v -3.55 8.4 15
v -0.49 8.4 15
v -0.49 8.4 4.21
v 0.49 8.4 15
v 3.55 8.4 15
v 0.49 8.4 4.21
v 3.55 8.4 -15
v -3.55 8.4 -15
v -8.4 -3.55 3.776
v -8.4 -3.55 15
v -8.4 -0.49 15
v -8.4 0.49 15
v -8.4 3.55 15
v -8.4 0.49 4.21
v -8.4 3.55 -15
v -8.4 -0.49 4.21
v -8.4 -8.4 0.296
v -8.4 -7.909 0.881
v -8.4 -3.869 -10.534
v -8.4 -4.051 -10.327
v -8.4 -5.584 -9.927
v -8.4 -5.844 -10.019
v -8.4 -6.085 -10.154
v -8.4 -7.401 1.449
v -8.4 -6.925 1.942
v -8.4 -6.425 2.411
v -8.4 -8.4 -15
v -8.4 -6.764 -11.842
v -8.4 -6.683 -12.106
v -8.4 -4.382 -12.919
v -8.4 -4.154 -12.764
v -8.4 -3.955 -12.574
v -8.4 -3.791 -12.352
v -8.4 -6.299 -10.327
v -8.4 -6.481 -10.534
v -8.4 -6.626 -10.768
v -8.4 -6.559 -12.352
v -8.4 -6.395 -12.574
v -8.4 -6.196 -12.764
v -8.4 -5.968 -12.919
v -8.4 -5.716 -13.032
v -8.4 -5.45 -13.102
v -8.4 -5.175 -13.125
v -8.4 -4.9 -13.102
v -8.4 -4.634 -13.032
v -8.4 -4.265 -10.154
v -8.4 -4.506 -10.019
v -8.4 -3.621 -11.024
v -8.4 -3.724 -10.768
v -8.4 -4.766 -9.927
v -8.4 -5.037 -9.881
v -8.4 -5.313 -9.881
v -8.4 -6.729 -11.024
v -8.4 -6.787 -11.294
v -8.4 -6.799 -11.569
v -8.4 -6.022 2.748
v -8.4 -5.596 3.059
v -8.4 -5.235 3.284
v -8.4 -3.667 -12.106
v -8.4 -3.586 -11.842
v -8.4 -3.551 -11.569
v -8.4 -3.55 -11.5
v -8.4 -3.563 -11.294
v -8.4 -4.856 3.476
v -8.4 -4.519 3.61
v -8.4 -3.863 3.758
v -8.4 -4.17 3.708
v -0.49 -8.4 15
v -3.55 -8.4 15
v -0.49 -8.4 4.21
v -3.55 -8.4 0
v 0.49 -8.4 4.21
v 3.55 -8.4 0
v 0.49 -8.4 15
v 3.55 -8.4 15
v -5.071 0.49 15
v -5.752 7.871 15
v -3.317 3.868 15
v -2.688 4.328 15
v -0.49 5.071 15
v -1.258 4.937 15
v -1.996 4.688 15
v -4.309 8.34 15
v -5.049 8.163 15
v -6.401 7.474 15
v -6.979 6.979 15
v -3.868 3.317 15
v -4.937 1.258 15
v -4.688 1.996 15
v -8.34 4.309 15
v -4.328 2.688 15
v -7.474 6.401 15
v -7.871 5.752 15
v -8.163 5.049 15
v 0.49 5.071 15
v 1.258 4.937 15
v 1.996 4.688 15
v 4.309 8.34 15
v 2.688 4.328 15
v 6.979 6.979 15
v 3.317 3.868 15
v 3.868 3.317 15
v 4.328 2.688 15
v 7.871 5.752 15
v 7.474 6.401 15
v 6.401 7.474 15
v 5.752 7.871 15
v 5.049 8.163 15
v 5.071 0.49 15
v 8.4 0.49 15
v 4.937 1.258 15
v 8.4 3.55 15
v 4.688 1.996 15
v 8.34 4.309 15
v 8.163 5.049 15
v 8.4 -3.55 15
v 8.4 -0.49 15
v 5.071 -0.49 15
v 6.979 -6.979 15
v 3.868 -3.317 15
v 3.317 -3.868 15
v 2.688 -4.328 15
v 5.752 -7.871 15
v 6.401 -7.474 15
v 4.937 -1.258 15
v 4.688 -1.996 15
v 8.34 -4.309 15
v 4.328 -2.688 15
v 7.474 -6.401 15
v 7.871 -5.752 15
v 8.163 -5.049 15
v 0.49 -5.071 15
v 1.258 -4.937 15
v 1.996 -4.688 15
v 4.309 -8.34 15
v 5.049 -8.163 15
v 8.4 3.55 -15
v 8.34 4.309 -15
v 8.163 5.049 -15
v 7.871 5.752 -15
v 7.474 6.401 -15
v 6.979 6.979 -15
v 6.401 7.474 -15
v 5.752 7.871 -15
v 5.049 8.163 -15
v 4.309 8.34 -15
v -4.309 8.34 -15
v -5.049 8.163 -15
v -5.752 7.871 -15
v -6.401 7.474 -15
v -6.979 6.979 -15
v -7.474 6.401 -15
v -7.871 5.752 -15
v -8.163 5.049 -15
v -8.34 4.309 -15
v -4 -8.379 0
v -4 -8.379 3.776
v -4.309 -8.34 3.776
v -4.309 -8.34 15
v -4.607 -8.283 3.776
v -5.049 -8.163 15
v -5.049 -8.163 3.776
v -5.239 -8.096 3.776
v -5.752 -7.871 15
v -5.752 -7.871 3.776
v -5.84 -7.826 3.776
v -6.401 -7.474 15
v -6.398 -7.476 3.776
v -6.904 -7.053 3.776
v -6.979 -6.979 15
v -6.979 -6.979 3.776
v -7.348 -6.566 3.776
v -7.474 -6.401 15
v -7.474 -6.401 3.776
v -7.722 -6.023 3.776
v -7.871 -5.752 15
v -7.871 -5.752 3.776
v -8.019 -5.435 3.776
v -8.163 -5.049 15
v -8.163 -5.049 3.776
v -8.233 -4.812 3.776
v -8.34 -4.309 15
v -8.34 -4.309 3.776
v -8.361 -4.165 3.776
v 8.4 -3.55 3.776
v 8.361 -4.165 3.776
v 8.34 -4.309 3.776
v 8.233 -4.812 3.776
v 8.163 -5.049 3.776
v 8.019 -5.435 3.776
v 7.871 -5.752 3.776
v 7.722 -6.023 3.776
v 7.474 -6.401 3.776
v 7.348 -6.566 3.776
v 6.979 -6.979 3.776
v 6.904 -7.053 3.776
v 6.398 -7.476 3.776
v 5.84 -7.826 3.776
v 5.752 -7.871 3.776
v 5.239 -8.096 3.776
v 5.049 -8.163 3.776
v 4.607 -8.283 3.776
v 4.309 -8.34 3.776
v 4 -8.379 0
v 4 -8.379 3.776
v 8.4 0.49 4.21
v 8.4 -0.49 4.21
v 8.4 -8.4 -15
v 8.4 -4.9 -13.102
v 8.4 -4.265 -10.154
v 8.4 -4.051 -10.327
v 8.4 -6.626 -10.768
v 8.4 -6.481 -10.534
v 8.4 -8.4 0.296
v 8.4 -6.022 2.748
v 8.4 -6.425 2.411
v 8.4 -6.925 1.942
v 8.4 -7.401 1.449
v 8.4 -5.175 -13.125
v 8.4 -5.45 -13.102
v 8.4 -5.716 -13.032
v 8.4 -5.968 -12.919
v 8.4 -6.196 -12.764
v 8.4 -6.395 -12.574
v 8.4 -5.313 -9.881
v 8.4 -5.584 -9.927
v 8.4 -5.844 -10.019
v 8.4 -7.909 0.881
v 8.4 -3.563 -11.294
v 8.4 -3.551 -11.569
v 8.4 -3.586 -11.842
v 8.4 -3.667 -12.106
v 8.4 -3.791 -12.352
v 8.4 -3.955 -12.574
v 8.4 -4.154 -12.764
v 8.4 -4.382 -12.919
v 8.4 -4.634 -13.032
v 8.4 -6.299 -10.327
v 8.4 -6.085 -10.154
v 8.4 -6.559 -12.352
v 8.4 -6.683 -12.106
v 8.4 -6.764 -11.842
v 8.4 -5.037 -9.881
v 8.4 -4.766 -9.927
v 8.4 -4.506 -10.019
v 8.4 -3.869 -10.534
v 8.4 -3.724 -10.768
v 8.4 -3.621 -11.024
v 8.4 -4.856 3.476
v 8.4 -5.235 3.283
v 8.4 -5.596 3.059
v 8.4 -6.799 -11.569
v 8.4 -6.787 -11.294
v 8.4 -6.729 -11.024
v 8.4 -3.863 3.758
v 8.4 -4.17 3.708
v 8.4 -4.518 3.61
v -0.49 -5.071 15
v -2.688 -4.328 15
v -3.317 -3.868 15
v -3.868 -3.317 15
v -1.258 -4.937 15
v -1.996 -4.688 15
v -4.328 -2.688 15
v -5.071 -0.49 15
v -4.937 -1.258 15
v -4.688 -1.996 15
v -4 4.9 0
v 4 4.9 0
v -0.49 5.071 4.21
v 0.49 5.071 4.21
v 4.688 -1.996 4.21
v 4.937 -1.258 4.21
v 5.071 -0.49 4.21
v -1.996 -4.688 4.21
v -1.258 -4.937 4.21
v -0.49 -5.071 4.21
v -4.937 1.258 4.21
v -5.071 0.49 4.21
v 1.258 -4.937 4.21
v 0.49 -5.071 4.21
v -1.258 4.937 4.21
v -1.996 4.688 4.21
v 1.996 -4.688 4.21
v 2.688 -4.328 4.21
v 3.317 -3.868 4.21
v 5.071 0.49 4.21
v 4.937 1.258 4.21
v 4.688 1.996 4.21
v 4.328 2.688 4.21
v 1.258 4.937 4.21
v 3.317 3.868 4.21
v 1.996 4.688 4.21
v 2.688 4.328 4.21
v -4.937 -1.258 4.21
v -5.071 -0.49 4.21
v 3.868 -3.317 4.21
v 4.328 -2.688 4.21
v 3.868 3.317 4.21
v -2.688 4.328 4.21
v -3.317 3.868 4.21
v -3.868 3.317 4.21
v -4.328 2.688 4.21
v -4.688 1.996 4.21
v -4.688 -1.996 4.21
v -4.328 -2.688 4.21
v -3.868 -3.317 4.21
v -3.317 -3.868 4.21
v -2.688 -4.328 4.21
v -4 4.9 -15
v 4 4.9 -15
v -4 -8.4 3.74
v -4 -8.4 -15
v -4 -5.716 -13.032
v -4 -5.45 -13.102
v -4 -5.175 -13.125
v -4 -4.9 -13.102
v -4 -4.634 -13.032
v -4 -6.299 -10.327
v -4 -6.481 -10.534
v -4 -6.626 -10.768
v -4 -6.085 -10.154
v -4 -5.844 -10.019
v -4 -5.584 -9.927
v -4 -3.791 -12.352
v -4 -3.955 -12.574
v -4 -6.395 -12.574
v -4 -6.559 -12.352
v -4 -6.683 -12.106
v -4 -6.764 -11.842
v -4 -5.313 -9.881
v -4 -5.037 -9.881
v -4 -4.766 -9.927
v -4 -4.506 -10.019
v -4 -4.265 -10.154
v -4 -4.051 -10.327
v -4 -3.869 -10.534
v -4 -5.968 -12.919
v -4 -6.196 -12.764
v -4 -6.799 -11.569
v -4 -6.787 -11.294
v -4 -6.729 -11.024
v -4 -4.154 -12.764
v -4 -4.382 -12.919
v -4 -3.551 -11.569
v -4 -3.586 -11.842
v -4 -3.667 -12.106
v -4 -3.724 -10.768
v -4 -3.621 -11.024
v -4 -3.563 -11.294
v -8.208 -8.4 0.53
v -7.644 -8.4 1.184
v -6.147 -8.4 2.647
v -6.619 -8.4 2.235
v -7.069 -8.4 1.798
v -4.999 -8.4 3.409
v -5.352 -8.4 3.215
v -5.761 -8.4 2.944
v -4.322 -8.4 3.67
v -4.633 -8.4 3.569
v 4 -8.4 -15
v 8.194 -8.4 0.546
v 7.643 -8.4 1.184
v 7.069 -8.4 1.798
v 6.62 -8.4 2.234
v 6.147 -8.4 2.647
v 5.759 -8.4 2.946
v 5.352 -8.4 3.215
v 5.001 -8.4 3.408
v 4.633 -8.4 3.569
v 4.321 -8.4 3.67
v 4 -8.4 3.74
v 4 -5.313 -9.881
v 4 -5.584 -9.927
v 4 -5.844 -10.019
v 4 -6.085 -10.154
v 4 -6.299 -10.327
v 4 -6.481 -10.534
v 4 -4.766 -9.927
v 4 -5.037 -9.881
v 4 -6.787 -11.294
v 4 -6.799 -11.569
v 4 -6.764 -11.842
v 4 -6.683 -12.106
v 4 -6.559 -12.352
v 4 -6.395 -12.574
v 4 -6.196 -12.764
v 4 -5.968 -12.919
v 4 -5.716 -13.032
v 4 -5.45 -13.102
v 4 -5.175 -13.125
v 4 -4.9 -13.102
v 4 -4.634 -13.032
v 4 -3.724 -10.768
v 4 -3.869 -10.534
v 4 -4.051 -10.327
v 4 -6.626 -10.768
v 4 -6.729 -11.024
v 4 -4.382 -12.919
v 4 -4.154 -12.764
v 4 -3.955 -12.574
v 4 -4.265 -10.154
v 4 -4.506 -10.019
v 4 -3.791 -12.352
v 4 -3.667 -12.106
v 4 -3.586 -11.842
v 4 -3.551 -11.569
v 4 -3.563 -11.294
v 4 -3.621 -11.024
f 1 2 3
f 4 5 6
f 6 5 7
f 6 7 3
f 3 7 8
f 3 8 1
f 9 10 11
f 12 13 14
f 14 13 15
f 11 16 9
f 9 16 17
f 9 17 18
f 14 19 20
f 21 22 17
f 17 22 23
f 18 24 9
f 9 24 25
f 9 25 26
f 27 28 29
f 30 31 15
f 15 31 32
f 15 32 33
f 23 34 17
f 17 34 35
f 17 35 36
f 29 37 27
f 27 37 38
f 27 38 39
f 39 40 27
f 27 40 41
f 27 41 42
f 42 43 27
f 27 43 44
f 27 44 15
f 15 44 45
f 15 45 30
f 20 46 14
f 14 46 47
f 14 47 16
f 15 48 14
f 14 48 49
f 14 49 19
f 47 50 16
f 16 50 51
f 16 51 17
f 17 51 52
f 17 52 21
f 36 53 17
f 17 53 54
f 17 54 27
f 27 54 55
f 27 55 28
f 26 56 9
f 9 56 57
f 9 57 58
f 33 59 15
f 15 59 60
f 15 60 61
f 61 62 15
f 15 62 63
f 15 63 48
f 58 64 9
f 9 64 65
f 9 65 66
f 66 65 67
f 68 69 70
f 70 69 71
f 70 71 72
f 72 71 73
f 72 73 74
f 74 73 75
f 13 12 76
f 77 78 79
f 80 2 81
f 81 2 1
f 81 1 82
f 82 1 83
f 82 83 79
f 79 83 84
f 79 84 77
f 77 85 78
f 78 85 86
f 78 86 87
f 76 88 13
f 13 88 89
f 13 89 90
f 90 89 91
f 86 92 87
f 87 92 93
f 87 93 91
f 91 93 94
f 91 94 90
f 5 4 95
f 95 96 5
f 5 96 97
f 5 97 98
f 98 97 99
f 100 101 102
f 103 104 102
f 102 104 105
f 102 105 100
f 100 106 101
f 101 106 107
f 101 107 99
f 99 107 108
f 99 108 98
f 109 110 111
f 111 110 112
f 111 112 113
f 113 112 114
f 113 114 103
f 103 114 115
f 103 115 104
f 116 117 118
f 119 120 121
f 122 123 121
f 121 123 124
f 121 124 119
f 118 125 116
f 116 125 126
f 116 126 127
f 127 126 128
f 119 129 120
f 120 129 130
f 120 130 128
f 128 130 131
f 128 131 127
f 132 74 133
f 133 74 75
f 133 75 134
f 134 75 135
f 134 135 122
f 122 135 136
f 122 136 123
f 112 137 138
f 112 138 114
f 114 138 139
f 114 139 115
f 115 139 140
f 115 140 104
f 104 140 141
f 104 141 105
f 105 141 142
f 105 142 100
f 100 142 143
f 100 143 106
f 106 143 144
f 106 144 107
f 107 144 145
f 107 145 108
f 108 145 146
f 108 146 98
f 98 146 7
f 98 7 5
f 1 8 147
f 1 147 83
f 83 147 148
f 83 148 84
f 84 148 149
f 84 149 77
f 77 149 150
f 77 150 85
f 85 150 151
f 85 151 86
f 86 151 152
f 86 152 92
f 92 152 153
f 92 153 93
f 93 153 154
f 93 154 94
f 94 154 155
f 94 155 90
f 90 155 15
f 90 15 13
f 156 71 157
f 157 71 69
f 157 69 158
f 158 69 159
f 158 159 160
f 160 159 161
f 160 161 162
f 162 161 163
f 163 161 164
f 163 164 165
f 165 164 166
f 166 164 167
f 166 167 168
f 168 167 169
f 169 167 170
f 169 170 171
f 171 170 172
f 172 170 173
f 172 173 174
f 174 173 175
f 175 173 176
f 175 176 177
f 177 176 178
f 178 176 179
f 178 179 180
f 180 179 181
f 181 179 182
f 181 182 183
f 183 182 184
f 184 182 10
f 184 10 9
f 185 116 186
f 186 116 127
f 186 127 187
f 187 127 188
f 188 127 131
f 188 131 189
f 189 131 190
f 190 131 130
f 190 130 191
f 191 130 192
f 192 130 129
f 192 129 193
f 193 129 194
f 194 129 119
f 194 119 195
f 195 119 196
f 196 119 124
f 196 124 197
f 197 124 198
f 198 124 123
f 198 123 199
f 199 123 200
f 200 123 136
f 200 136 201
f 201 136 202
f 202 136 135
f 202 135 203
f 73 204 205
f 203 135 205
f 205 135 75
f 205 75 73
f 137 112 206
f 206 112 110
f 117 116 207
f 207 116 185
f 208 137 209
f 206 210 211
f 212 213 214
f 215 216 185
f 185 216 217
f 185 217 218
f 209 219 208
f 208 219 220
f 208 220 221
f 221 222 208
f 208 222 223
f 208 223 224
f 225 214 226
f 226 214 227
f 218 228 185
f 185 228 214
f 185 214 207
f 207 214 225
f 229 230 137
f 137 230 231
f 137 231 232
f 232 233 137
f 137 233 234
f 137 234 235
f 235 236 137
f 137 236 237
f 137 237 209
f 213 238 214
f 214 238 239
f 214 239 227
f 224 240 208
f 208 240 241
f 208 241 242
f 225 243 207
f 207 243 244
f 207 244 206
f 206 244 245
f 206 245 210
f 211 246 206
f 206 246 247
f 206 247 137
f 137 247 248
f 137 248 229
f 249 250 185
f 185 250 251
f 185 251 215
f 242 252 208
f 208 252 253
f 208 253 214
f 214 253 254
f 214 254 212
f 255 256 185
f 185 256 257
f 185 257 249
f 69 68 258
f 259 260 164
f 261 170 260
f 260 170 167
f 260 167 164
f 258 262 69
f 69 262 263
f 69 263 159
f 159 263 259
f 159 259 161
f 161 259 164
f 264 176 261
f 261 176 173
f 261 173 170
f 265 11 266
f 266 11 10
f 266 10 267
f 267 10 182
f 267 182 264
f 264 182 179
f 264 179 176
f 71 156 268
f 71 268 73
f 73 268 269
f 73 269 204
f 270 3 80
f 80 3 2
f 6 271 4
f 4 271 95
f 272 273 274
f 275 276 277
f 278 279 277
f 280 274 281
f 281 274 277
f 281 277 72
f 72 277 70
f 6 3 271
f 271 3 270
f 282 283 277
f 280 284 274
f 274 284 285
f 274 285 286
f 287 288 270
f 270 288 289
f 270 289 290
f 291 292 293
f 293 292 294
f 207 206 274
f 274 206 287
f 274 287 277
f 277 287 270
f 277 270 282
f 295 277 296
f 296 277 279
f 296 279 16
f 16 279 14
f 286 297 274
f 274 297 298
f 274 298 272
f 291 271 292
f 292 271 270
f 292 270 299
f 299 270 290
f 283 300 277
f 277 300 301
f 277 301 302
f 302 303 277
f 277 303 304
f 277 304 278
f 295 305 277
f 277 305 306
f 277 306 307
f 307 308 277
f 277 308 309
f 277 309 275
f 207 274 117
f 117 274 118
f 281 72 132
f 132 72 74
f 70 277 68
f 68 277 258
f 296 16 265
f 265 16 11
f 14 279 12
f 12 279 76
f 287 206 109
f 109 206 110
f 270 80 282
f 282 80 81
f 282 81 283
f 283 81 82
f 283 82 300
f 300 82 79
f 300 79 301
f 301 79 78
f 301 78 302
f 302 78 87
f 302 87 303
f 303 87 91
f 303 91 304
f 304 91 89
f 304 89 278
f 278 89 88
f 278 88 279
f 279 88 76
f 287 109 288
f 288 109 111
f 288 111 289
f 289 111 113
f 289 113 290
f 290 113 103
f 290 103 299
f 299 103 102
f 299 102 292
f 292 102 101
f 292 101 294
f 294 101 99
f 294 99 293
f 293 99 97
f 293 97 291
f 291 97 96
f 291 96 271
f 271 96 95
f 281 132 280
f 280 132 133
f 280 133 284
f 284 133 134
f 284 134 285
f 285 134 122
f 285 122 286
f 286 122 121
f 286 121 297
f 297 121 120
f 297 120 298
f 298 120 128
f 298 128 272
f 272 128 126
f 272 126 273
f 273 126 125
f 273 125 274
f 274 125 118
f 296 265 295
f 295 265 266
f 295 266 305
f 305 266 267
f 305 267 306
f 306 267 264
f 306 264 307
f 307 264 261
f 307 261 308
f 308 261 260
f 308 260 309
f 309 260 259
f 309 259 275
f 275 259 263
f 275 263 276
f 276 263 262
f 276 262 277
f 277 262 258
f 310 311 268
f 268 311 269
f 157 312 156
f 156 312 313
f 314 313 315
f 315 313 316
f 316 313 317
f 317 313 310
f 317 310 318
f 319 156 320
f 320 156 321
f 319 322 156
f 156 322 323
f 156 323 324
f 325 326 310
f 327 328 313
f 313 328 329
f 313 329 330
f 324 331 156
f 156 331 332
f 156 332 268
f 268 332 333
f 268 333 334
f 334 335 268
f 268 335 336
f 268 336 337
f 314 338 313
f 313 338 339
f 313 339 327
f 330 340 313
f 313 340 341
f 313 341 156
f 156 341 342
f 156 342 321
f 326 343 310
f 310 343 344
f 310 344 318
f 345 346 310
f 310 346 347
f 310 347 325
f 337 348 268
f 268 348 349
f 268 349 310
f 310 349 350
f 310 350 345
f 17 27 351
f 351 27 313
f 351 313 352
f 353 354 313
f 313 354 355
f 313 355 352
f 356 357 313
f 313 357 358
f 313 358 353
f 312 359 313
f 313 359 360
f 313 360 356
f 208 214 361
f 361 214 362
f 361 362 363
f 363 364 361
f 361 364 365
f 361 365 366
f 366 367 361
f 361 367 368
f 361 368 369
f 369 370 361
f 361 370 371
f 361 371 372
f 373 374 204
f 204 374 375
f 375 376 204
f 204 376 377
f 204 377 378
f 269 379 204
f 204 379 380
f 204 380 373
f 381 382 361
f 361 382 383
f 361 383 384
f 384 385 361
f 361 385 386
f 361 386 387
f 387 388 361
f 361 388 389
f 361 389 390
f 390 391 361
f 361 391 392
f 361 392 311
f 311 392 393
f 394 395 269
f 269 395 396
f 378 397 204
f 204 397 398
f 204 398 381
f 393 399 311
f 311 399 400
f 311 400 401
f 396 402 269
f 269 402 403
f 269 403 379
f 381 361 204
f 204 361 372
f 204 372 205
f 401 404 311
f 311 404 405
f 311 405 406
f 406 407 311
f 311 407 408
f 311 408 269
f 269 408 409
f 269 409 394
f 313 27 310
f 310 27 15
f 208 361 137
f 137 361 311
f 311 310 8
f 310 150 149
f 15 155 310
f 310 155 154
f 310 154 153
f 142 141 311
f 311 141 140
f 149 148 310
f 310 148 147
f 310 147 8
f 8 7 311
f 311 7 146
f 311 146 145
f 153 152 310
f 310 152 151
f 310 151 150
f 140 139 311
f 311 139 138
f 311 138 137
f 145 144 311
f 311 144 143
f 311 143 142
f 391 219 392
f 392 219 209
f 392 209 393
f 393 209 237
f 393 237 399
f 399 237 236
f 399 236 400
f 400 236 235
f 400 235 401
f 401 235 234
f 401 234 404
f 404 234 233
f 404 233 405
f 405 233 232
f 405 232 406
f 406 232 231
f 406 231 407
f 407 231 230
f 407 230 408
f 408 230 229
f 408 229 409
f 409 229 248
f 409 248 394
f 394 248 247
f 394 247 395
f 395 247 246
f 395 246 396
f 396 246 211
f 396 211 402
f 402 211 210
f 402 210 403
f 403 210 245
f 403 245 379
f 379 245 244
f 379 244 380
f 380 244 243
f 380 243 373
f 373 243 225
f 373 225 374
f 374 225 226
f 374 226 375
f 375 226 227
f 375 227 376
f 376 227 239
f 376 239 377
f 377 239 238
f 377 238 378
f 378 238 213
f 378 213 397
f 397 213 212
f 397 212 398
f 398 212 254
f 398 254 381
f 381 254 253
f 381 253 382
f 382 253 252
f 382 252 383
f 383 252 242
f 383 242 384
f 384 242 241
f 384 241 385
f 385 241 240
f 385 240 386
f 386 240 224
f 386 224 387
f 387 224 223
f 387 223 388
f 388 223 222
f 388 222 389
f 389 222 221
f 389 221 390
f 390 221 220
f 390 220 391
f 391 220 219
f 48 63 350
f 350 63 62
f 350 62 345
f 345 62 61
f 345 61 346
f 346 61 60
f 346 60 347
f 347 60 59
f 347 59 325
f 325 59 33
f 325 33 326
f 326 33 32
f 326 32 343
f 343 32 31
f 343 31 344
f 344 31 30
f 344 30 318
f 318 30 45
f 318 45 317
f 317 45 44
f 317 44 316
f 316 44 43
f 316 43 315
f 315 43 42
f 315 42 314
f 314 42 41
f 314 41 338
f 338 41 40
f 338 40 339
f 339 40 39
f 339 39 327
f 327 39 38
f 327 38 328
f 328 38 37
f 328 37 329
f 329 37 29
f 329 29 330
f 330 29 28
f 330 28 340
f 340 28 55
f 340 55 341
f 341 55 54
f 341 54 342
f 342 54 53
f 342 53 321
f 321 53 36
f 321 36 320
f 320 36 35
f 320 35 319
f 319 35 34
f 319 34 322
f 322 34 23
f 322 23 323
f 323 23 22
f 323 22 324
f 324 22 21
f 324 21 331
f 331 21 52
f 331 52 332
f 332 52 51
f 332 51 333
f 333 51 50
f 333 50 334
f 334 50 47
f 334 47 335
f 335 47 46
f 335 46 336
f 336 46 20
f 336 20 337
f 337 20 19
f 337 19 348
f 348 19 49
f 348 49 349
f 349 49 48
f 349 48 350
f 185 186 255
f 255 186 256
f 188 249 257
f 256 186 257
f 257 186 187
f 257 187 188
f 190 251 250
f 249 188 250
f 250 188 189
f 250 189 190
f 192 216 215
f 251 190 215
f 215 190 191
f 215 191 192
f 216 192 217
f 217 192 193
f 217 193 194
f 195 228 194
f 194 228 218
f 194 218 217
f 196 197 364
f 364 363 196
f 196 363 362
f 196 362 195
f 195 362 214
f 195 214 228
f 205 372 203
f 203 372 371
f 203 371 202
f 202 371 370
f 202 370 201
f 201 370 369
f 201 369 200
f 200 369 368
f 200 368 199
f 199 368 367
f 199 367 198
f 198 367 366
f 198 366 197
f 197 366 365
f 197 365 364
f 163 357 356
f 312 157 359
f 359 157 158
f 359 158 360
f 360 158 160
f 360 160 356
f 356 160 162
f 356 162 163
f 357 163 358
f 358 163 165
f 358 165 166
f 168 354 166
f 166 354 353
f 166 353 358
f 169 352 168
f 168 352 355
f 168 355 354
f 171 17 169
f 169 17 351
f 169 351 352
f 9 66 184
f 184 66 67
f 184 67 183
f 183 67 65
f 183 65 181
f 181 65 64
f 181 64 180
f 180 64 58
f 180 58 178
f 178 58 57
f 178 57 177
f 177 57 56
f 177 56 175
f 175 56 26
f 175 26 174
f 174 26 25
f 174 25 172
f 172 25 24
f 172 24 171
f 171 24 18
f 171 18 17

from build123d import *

# Parameters (mm, degrees)
BOSS_EXTRUDE1_DEPTH = 15
SKETCH2_R           = 5.095
CUT_EXTRUDE1_DEPTH  = 10.79
BOSS_EXTRUDE3_START = 15
BOSS_EXTRUDE3_DEPTH = 15
CUT_EXTRUDE2_REACH  = 26.037
SKETCH7_R           = 1.625
CHAMFER2_SIZE       = 2.18
CHAMFER2_SIZE_2     = 3.775870761


with BuildPart() as part:
    # Sketch1 → Boss-Extrude1 (new body)
    with BuildSketch(Plane.XY):
        with BuildLine():
            Line((-3.55, 8.4), (3.55, 8.4))
            ThreePointArc((3.55, 8.4), (6.979467889, 6.979467889), (8.4, 3.55))
            Line((8.4, 3.55), (8.4, -3.55))
            ThreePointArc((8.4, -3.55), (6.979467889, -6.979467889), (3.55, -8.4))
            Line((3.55, -8.4), (-3.55, -8.4))
            ThreePointArc((-3.55, -8.4), (-6.979467889, -6.979467889), (-8.4, -3.55))
            Line((-8.4, -3.55), (-8.4, 3.55))
            ThreePointArc((-8.4, 3.55), (-6.979467889, 6.979467889), (-3.55, 8.4))
        make_face()
    extrude(amount=BOSS_EXTRUDE1_DEPTH)

    # Sketch2 → Cut-Extrude1 (cut)
    with BuildSketch(Plane.XY.offset(15)):
        Circle(SKETCH2_R)
        with BuildLine():
            Line((0.49, 5.071382947), (0.49, 8.4))
            Line((0.49, 8.4), (-0.49, 8.4))
            Line((-0.49, 8.4), (-0.49, 5.071382947))
            ThreePointArc((-0.49, 5.071382947), (0, 5.095), (0.49, 5.071382947))
        make_face()
        with BuildLine():
            Line((5.071382947, -0.49), (8.4, -0.49))
            Line((8.4, -0.49), (8.4, 0.49))
            Line((8.4, 0.49), (5.071382947, 0.49))
            ThreePointArc((5.071382947, 0.49), (5.095, 0), (5.071382947, -0.49))
        make_face()
        with BuildLine():
            Line((-0.49, -5.071382947), (-0.49, -8.4))
            Line((-0.49, -8.4), (0.49, -8.4))
            Line((0.49, -8.4), (0.49, -5.071382947))
            ThreePointArc((0.49, -5.071382947), (0, -5.095), (-0.49, -5.071382947))
        make_face()
        with BuildLine():
            Line((-5.071382947, 0.49), (-8.4, 0.49))
            Line((-8.4, 0.49), (-8.4, -0.49))
            Line((-8.4, -0.49), (-5.071382947, -0.49))
            ThreePointArc((-5.071382947, -0.49), (-5.095, 0), (-5.071382947, 0.49))
        make_face()
    extrude(amount=-CUT_EXTRUDE1_DEPTH, mode=Mode.SUBTRACT)

    # Sketch4 → Boss-Extrude3 (add)
    with BuildSketch(Plane(origin=(0, 0, 0), x_dir=(-1, 0, 0), z_dir=(0, 0, -1)).offset(BOSS_EXTRUDE3_START)):
        with BuildLine():
            Line((-8.4, 3.55), (-8.4, -8.4))
            Line((-8.4, -8.4), (-4, -8.4))
            Line((-4, -8.4), (-4, 4.9))
            Line((-4, 4.9), (4, 4.9))
            Line((4, 4.9), (4, -8.4))
            Line((4, -8.4), (8.4, -8.4))
            Line((8.4, -8.4), (8.4, 3.55))
            ThreePointArc((8.4, 3.55), (6.979467889, 6.979467889), (3.55, 8.4))
            Line((3.55, 8.4), (-3.55, 8.4))
            ThreePointArc((-3.55, 8.4), (-6.979467889, 6.979467889), (-8.4, 3.55))
        make_face()
    extrude(amount=-BOSS_EXTRUDE3_DEPTH)

    # Cut-Extrude2: up to this face of the body (flat: up to its plane)
    cut_extrude2_end = Plane(part.part.faces().sort_by_distance((-8.4, -1.579649264, -2.351915361))[0])
    # Sketch7 → Cut-Extrude2 (cut, up to the picked face)
    with BuildSketch(Plane(origin=(8.4, 0, 0), x_dir=(0, 0, -1), z_dir=(1, 0, 0)), mode=Mode.PRIVATE) as cut_extrude2_sk1:
        with Locations((11.5, -5.175)):
            Circle(SKETCH7_R)
    cut_extrude2_tool1 = split(extrude(cut_extrude2_sk1.sketch, amount=-CUT_EXTRUDE2_REACH, mode=Mode.PRIVATE), bisect_by=cut_extrude2_end, keep=Keep.BOTH, mode=Mode.PRIVATE)
    add(cut_extrude2_tool1.solids().sort_by(Axis((8.4, -5.175, -11.5), (-1, 0, 0)))[0], mode=Mode.SUBTRACT)

    # Chamfer2
    # the kernel refuses this chamfer: 3.775870761, 2.18 mm, written as the material it adds along each edge
    with BuildSketch(Plane(origin=(-3.55, -3.55, 0), x_dir=(0.9389857690160399, 0.343955993675581, 0), z_dir=(-0.343955993675581, 0.9389857690160399, 0))) as chamfer2_piece_1_section:
        Polygon((4.85 + CHAMFER2_SIZE, 0), (4.85, -CHAMFER2_SIZE_2), (4.85, 0), align=None)
    chamfer2_piece_1 = revolve(axis=Axis((-3.55, -3.55, 0), (0, 0, -1)), revolution_arc=315.559918018, mode=Mode.PRIVATE)
    chamfer2_piece_1 = split(chamfer2_piece_1, bisect_by=Plane(origin=(-4, -7.19796441, 1.47894359), z_dir=(-1, 0, 0)), keep=Keep.TOP, mode=Mode.PRIVATE)
    chamfer2_piece_1 = split(chamfer2_piece_1, bisect_by=Plane(origin=(-7.201843372, -8.4, 1.47894359), z_dir=(0, 1, 0)), keep=Keep.TOP, mode=Mode.PRIVATE)
    chamfer2_piece_1 = split(chamfer2_piece_1, bisect_by=Plane(origin=(-8.4, -7.19796441, 1.47894359), z_dir=(1, 0, 0)), keep=Keep.TOP, mode=Mode.PRIVATE)
    add(chamfer2_piece_1)
    with BuildSketch(Plane(origin=(3.55, -3.55, 0), x_dir=(-0.42959466391895607, 0.9030218295990186, 0), z_dir=(-0.9030218295990186, -0.42959466391895607, 0))) as chamfer2_piece_2_section:
        Polygon((4.85, -CHAMFER2_SIZE_2), (4.85 + CHAMFER2_SIZE, 0), (4.85, 0), align=None)
    chamfer2_piece_2 = revolve(axis=Axis((3.55, -3.55, 0), (0, 0, -1)), revolution_arc=315.559918018, mode=Mode.PRIVATE)
    chamfer2_piece_2 = split(chamfer2_piece_2, bisect_by=Plane(origin=(8.4, -7.197964411, 1.478943589), z_dir=(-1, 0, 0)), keep=Keep.TOP, mode=Mode.PRIVATE)
    chamfer2_piece_2 = split(chamfer2_piece_2, bisect_by=Plane(origin=(7.201843372, -8.4, 1.478943589), z_dir=(0, 1, 0)), keep=Keep.TOP, mode=Mode.PRIVATE)
    chamfer2_piece_2 = split(chamfer2_piece_2, bisect_by=Plane(origin=(4, -7.197964411, 1.478943589), z_dir=(1, 0, 0)), keep=Keep.TOP, mode=Mode.PRIVATE)
    add(chamfer2_piece_2)


solid = part.part
